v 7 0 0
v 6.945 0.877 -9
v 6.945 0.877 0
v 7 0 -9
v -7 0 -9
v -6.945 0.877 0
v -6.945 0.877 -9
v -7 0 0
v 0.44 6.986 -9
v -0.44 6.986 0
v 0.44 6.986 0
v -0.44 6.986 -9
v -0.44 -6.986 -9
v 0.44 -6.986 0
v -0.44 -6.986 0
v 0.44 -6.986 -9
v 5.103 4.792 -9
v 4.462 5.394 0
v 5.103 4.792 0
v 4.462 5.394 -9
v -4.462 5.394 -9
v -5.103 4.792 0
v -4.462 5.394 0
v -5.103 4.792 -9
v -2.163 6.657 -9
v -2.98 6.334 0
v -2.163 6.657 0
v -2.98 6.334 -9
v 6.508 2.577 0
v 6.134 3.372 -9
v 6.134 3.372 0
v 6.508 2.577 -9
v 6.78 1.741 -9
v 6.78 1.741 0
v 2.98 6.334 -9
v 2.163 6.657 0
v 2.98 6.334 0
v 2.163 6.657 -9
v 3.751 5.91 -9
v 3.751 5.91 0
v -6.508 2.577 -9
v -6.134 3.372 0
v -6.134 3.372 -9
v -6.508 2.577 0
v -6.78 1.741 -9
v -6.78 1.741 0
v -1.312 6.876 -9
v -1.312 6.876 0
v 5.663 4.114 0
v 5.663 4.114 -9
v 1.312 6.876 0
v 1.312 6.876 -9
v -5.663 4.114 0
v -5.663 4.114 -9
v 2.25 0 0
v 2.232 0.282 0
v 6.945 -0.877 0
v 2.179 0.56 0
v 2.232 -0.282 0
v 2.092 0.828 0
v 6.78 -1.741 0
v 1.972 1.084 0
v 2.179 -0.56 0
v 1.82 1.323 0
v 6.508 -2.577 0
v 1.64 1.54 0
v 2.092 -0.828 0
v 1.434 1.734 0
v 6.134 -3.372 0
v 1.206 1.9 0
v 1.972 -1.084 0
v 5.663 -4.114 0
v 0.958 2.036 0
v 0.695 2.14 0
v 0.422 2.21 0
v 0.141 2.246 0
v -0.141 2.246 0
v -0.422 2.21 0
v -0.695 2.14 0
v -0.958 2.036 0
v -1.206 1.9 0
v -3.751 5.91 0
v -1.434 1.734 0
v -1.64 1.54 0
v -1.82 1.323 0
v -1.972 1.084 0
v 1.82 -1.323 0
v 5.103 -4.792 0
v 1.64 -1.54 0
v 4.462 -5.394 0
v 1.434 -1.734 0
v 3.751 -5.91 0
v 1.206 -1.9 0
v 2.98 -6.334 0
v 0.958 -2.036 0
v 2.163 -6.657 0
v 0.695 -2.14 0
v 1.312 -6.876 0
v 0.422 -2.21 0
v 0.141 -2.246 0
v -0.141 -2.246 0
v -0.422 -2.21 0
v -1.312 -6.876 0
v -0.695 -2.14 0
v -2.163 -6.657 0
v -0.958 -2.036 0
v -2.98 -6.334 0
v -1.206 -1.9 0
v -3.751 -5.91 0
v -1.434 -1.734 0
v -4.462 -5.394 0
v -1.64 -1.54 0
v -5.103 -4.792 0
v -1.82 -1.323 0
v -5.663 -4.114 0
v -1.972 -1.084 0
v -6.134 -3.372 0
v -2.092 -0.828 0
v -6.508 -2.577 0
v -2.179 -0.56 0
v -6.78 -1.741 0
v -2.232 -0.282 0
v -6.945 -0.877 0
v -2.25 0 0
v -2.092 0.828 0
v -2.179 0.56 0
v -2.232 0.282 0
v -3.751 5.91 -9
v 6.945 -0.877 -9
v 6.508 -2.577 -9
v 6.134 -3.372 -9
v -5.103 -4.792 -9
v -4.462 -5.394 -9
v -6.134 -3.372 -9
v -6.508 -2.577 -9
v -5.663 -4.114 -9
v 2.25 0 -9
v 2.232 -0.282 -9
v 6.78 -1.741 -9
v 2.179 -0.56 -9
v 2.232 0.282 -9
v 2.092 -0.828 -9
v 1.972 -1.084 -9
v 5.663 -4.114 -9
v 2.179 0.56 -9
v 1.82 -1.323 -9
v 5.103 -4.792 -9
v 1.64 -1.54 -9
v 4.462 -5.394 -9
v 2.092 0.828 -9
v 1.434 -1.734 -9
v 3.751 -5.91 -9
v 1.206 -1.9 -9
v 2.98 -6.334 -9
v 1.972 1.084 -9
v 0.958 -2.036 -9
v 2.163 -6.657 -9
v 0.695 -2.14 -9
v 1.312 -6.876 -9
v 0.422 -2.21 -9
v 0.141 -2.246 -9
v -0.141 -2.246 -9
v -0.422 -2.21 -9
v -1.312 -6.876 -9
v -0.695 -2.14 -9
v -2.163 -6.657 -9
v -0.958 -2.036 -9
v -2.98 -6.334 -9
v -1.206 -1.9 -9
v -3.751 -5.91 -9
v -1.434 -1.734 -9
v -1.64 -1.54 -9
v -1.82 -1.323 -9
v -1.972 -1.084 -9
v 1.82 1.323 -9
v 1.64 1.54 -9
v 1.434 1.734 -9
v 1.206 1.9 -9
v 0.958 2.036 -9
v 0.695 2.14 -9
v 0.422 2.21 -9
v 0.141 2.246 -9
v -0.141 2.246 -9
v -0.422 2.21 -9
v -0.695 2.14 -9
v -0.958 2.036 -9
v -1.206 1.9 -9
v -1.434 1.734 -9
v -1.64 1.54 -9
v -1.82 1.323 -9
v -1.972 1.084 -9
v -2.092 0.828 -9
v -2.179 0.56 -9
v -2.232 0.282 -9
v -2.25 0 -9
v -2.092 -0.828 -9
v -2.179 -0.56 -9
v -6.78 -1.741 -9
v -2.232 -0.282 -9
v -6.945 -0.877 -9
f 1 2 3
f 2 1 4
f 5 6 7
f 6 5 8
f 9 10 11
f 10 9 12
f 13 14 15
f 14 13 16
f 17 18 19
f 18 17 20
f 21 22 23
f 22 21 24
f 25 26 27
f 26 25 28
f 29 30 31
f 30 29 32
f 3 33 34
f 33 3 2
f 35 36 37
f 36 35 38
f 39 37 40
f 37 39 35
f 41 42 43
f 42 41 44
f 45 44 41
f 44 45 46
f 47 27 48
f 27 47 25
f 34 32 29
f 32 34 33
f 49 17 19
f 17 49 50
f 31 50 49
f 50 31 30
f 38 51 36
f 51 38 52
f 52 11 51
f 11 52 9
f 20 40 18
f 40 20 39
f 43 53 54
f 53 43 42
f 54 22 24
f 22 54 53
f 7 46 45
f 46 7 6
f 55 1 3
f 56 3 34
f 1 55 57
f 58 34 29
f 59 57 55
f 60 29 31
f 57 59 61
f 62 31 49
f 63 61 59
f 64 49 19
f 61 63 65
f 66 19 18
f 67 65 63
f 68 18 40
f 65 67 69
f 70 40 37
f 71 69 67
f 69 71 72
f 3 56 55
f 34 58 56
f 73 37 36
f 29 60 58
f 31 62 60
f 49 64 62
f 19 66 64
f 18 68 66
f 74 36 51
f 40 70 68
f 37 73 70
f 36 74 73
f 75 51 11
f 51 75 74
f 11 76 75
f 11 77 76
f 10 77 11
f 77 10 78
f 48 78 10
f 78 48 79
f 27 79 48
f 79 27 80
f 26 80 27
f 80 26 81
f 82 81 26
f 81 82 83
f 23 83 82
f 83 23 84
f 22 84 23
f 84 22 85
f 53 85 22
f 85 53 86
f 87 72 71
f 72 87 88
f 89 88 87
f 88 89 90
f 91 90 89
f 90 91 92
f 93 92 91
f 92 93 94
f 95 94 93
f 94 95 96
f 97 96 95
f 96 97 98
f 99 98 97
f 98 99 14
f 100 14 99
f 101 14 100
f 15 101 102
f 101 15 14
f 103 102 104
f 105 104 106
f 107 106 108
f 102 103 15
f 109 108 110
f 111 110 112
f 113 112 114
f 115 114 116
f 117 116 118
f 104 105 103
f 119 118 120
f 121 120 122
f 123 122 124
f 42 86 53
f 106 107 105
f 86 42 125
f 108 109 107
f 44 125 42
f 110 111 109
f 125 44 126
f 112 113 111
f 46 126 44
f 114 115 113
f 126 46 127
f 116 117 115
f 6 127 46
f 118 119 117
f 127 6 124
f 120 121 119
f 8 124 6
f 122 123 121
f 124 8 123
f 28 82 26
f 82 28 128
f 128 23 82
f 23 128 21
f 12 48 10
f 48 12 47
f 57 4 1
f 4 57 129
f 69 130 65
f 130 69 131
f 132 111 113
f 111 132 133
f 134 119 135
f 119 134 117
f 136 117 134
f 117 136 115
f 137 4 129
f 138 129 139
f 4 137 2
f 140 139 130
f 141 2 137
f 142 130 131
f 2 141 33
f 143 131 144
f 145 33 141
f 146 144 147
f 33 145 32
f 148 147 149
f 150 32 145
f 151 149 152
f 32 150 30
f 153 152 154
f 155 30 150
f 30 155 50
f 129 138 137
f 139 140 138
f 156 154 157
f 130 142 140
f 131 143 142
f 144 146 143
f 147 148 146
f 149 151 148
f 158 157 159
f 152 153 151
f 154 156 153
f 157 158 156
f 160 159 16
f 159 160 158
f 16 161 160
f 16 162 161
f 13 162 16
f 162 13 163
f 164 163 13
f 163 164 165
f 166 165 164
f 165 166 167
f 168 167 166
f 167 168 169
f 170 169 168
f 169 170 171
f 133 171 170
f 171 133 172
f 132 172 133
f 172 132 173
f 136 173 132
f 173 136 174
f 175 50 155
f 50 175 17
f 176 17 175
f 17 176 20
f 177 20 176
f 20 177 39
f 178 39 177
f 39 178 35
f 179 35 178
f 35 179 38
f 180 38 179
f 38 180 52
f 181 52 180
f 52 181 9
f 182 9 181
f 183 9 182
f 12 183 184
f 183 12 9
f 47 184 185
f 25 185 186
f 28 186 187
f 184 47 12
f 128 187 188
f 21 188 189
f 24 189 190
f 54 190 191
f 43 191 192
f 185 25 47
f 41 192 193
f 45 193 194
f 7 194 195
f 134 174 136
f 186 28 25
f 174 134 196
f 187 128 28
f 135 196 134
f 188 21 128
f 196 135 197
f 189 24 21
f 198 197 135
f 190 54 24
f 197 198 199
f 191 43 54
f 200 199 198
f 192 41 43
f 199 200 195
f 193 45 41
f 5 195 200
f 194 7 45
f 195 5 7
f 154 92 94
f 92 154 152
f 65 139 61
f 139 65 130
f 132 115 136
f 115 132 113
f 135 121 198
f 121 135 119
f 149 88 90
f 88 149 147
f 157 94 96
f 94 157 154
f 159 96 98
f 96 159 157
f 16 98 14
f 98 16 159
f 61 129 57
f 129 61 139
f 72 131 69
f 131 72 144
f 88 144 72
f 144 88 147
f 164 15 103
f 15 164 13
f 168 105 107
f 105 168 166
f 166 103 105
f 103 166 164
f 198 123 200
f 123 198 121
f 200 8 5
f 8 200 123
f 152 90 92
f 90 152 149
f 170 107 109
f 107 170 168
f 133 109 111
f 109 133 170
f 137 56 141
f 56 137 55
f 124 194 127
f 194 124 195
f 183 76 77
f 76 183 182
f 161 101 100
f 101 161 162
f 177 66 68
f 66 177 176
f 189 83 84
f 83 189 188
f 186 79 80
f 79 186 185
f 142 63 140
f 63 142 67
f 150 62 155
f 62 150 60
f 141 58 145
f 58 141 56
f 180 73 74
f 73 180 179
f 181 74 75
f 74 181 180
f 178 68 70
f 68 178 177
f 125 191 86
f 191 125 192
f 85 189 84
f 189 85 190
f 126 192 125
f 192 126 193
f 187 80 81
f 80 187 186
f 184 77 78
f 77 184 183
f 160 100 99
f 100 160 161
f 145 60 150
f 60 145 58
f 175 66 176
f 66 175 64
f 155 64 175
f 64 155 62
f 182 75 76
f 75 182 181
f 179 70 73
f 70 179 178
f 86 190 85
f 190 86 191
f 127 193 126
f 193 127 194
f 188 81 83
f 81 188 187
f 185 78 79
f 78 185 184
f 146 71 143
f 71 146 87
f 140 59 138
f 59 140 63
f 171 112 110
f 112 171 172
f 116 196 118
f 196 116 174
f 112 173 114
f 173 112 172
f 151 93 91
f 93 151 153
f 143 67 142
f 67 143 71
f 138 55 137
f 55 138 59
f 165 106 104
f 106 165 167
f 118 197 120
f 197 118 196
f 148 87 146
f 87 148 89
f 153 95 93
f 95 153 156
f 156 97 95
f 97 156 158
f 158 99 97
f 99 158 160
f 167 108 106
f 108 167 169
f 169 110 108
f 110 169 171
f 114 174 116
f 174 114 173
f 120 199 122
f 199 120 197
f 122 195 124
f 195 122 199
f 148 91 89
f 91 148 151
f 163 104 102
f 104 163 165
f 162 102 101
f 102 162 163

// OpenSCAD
$fn = 50;


difference() {
	union() {
		translate(v = [0, 0, -9.0000000000]) {
			cylinder(h = 9, r = 7.0000000000);
		}
		cylinder(h = 0, r = 17.0000000000);
	}
	union() {
		#translate(v = [0, 0, -9]) {
			cylinder(h = 9, r = 2.2500000000);
		}
	}
}
